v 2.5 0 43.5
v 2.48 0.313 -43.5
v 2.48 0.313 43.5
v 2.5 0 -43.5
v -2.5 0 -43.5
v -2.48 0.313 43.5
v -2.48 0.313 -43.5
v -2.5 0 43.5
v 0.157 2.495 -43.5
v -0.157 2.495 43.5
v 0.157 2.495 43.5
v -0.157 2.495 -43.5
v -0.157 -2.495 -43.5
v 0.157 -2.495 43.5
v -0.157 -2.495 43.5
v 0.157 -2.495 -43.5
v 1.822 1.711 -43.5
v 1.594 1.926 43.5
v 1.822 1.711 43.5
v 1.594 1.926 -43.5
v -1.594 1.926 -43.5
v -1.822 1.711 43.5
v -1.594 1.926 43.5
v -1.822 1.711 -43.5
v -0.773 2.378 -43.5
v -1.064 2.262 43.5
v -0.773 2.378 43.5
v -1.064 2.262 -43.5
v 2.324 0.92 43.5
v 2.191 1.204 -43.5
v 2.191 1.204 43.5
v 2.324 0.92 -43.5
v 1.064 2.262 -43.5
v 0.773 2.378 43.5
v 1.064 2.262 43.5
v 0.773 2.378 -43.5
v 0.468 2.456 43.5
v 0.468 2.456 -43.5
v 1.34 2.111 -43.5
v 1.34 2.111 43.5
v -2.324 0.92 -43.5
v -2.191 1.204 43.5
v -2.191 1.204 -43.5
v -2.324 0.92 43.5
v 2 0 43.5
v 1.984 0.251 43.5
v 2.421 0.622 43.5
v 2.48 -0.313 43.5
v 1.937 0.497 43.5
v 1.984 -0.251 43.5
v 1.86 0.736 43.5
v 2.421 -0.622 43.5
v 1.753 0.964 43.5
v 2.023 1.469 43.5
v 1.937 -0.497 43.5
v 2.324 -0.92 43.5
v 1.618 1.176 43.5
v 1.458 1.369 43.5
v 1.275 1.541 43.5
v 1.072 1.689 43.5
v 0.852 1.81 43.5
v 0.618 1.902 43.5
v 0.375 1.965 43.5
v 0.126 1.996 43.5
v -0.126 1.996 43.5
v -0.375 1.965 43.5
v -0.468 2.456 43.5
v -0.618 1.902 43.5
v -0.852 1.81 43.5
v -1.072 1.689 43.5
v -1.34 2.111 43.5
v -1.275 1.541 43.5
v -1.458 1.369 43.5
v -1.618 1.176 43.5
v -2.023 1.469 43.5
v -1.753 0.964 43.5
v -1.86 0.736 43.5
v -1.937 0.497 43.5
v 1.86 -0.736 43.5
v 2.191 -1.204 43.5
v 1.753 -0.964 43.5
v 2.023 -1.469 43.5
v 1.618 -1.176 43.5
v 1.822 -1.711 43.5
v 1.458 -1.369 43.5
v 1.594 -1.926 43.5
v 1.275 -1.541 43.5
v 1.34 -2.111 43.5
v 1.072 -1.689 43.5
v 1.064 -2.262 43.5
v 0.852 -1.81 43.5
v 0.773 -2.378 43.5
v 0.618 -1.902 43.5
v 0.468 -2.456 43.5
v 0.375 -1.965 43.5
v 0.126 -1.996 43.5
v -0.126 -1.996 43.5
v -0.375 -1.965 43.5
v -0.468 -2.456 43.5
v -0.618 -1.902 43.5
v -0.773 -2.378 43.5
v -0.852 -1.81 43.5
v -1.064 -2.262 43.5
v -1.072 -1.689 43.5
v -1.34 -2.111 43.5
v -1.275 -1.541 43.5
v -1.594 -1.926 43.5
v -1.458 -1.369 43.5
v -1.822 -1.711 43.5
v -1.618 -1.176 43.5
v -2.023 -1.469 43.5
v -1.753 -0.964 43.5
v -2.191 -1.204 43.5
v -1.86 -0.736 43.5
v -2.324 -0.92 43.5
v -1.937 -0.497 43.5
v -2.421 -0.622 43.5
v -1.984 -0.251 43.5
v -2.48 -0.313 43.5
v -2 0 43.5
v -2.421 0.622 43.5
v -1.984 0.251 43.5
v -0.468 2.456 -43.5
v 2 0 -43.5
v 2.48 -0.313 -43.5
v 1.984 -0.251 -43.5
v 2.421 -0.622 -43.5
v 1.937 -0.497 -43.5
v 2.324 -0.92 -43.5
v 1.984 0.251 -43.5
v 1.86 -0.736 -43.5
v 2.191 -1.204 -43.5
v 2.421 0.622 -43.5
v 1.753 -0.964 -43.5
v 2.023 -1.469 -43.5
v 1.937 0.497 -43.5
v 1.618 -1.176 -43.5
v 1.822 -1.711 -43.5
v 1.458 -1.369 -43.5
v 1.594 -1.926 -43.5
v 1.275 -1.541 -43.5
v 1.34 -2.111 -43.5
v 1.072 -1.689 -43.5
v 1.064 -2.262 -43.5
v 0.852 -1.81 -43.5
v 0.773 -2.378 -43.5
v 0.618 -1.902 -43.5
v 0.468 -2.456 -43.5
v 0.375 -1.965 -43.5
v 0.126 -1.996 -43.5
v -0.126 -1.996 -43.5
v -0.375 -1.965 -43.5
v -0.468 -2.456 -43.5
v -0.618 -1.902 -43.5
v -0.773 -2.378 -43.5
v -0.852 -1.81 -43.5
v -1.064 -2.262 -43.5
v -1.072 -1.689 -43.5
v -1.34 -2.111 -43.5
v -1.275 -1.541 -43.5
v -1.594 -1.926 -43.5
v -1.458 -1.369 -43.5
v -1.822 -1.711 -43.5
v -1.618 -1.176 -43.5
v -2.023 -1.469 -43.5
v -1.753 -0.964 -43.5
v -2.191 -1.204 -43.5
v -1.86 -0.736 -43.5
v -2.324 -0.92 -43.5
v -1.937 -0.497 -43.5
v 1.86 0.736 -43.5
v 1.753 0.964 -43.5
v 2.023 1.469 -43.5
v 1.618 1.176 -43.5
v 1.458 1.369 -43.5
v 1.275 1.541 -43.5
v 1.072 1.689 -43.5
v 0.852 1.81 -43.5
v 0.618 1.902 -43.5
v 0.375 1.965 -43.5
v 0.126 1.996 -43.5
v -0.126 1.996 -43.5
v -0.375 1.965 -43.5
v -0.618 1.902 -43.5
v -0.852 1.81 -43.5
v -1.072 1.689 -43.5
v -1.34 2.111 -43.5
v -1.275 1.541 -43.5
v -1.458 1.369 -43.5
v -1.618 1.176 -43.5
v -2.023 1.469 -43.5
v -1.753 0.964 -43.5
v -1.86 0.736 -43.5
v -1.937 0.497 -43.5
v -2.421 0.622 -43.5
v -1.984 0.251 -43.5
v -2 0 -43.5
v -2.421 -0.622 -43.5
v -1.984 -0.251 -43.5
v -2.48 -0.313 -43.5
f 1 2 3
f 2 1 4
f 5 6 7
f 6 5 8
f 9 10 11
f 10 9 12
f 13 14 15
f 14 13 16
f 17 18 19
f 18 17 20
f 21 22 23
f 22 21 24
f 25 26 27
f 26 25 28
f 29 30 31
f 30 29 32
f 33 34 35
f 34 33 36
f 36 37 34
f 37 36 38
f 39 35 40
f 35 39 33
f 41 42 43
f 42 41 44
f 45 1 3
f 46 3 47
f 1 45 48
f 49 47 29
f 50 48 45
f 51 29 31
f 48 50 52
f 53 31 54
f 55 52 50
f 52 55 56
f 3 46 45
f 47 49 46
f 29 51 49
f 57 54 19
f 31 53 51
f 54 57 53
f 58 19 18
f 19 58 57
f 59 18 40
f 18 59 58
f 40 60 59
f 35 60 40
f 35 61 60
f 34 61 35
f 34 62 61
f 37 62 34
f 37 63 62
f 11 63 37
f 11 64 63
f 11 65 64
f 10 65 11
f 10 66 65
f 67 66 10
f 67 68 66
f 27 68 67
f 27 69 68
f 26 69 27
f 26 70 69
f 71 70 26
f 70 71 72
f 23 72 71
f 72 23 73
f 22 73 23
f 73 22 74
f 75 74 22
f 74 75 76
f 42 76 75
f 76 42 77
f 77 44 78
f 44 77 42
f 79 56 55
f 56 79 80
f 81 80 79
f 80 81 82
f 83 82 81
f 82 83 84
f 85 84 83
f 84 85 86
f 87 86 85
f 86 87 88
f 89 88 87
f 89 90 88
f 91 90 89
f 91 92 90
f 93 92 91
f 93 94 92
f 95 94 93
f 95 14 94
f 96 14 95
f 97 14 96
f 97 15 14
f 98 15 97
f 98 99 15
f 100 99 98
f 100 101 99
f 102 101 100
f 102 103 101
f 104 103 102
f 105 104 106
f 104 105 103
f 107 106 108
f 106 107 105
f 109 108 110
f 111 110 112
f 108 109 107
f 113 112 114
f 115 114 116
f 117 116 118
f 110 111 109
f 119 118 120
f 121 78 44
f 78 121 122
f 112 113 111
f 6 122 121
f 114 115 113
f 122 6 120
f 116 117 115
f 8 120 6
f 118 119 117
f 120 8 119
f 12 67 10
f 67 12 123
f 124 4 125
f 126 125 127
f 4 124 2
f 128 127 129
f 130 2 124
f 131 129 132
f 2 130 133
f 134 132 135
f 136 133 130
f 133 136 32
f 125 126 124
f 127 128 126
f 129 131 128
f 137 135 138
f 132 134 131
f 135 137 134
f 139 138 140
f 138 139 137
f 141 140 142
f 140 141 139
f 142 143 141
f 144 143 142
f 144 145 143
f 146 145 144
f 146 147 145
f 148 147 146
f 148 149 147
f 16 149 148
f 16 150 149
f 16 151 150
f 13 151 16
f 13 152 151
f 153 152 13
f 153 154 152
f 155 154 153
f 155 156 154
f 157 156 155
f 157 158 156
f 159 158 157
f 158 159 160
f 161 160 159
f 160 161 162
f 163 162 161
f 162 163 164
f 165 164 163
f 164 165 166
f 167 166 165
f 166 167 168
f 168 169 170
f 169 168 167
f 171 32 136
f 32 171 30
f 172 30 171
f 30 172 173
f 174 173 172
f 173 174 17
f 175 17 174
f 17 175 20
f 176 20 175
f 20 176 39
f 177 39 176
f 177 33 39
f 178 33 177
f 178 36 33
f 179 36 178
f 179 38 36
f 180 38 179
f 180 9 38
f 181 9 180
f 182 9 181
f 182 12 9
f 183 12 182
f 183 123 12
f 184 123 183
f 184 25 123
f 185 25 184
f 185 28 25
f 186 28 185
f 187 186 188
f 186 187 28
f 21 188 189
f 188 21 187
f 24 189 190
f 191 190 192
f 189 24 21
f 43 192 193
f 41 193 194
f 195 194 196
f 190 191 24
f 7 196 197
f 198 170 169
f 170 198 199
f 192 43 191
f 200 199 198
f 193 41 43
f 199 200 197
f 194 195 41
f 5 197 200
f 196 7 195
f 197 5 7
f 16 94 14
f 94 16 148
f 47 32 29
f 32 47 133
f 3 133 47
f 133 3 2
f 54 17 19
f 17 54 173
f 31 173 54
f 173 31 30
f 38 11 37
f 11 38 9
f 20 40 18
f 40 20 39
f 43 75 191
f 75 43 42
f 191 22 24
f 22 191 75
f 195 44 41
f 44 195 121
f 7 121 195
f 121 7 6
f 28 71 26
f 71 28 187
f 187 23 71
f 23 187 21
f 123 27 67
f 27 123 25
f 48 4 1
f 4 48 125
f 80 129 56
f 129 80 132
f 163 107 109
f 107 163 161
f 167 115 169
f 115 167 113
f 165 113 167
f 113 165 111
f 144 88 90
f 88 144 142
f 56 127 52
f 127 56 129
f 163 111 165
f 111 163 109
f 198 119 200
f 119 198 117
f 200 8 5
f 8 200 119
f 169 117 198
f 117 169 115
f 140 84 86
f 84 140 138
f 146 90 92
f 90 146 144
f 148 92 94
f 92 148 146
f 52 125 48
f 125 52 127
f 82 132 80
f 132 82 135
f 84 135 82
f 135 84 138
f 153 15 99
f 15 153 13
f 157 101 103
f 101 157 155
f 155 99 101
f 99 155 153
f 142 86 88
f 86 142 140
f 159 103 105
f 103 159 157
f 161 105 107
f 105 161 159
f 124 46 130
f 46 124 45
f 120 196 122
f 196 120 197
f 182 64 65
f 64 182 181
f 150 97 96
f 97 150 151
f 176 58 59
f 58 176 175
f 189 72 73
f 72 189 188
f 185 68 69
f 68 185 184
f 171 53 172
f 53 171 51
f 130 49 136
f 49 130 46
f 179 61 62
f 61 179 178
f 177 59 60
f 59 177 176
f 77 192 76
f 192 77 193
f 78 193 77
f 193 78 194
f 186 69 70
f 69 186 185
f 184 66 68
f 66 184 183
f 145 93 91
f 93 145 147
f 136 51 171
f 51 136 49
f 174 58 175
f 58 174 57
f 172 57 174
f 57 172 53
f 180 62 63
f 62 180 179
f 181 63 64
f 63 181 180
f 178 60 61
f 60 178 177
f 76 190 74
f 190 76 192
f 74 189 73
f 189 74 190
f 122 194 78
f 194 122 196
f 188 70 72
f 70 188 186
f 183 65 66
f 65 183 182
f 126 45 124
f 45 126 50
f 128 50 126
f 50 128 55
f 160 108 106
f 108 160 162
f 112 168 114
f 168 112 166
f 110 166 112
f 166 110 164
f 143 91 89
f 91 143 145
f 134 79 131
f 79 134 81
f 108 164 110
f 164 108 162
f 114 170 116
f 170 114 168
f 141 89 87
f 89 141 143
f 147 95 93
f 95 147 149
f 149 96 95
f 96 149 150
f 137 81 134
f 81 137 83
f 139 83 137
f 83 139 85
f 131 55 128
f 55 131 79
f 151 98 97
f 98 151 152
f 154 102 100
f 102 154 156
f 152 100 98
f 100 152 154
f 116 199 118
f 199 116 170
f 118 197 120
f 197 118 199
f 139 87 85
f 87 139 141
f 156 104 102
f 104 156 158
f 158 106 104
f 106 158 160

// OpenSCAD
$fn = 50;


difference() {
	union() {
		translate(v = [0, 0, -43.5000000000]) {
			cylinder(h = 87, r = 2.5000000000);
		}
	}
	union() {
		translate(v = [0, 0, -100.0000000000]) {
			cylinder(h = 200, r = 2);
		}
	}
}
